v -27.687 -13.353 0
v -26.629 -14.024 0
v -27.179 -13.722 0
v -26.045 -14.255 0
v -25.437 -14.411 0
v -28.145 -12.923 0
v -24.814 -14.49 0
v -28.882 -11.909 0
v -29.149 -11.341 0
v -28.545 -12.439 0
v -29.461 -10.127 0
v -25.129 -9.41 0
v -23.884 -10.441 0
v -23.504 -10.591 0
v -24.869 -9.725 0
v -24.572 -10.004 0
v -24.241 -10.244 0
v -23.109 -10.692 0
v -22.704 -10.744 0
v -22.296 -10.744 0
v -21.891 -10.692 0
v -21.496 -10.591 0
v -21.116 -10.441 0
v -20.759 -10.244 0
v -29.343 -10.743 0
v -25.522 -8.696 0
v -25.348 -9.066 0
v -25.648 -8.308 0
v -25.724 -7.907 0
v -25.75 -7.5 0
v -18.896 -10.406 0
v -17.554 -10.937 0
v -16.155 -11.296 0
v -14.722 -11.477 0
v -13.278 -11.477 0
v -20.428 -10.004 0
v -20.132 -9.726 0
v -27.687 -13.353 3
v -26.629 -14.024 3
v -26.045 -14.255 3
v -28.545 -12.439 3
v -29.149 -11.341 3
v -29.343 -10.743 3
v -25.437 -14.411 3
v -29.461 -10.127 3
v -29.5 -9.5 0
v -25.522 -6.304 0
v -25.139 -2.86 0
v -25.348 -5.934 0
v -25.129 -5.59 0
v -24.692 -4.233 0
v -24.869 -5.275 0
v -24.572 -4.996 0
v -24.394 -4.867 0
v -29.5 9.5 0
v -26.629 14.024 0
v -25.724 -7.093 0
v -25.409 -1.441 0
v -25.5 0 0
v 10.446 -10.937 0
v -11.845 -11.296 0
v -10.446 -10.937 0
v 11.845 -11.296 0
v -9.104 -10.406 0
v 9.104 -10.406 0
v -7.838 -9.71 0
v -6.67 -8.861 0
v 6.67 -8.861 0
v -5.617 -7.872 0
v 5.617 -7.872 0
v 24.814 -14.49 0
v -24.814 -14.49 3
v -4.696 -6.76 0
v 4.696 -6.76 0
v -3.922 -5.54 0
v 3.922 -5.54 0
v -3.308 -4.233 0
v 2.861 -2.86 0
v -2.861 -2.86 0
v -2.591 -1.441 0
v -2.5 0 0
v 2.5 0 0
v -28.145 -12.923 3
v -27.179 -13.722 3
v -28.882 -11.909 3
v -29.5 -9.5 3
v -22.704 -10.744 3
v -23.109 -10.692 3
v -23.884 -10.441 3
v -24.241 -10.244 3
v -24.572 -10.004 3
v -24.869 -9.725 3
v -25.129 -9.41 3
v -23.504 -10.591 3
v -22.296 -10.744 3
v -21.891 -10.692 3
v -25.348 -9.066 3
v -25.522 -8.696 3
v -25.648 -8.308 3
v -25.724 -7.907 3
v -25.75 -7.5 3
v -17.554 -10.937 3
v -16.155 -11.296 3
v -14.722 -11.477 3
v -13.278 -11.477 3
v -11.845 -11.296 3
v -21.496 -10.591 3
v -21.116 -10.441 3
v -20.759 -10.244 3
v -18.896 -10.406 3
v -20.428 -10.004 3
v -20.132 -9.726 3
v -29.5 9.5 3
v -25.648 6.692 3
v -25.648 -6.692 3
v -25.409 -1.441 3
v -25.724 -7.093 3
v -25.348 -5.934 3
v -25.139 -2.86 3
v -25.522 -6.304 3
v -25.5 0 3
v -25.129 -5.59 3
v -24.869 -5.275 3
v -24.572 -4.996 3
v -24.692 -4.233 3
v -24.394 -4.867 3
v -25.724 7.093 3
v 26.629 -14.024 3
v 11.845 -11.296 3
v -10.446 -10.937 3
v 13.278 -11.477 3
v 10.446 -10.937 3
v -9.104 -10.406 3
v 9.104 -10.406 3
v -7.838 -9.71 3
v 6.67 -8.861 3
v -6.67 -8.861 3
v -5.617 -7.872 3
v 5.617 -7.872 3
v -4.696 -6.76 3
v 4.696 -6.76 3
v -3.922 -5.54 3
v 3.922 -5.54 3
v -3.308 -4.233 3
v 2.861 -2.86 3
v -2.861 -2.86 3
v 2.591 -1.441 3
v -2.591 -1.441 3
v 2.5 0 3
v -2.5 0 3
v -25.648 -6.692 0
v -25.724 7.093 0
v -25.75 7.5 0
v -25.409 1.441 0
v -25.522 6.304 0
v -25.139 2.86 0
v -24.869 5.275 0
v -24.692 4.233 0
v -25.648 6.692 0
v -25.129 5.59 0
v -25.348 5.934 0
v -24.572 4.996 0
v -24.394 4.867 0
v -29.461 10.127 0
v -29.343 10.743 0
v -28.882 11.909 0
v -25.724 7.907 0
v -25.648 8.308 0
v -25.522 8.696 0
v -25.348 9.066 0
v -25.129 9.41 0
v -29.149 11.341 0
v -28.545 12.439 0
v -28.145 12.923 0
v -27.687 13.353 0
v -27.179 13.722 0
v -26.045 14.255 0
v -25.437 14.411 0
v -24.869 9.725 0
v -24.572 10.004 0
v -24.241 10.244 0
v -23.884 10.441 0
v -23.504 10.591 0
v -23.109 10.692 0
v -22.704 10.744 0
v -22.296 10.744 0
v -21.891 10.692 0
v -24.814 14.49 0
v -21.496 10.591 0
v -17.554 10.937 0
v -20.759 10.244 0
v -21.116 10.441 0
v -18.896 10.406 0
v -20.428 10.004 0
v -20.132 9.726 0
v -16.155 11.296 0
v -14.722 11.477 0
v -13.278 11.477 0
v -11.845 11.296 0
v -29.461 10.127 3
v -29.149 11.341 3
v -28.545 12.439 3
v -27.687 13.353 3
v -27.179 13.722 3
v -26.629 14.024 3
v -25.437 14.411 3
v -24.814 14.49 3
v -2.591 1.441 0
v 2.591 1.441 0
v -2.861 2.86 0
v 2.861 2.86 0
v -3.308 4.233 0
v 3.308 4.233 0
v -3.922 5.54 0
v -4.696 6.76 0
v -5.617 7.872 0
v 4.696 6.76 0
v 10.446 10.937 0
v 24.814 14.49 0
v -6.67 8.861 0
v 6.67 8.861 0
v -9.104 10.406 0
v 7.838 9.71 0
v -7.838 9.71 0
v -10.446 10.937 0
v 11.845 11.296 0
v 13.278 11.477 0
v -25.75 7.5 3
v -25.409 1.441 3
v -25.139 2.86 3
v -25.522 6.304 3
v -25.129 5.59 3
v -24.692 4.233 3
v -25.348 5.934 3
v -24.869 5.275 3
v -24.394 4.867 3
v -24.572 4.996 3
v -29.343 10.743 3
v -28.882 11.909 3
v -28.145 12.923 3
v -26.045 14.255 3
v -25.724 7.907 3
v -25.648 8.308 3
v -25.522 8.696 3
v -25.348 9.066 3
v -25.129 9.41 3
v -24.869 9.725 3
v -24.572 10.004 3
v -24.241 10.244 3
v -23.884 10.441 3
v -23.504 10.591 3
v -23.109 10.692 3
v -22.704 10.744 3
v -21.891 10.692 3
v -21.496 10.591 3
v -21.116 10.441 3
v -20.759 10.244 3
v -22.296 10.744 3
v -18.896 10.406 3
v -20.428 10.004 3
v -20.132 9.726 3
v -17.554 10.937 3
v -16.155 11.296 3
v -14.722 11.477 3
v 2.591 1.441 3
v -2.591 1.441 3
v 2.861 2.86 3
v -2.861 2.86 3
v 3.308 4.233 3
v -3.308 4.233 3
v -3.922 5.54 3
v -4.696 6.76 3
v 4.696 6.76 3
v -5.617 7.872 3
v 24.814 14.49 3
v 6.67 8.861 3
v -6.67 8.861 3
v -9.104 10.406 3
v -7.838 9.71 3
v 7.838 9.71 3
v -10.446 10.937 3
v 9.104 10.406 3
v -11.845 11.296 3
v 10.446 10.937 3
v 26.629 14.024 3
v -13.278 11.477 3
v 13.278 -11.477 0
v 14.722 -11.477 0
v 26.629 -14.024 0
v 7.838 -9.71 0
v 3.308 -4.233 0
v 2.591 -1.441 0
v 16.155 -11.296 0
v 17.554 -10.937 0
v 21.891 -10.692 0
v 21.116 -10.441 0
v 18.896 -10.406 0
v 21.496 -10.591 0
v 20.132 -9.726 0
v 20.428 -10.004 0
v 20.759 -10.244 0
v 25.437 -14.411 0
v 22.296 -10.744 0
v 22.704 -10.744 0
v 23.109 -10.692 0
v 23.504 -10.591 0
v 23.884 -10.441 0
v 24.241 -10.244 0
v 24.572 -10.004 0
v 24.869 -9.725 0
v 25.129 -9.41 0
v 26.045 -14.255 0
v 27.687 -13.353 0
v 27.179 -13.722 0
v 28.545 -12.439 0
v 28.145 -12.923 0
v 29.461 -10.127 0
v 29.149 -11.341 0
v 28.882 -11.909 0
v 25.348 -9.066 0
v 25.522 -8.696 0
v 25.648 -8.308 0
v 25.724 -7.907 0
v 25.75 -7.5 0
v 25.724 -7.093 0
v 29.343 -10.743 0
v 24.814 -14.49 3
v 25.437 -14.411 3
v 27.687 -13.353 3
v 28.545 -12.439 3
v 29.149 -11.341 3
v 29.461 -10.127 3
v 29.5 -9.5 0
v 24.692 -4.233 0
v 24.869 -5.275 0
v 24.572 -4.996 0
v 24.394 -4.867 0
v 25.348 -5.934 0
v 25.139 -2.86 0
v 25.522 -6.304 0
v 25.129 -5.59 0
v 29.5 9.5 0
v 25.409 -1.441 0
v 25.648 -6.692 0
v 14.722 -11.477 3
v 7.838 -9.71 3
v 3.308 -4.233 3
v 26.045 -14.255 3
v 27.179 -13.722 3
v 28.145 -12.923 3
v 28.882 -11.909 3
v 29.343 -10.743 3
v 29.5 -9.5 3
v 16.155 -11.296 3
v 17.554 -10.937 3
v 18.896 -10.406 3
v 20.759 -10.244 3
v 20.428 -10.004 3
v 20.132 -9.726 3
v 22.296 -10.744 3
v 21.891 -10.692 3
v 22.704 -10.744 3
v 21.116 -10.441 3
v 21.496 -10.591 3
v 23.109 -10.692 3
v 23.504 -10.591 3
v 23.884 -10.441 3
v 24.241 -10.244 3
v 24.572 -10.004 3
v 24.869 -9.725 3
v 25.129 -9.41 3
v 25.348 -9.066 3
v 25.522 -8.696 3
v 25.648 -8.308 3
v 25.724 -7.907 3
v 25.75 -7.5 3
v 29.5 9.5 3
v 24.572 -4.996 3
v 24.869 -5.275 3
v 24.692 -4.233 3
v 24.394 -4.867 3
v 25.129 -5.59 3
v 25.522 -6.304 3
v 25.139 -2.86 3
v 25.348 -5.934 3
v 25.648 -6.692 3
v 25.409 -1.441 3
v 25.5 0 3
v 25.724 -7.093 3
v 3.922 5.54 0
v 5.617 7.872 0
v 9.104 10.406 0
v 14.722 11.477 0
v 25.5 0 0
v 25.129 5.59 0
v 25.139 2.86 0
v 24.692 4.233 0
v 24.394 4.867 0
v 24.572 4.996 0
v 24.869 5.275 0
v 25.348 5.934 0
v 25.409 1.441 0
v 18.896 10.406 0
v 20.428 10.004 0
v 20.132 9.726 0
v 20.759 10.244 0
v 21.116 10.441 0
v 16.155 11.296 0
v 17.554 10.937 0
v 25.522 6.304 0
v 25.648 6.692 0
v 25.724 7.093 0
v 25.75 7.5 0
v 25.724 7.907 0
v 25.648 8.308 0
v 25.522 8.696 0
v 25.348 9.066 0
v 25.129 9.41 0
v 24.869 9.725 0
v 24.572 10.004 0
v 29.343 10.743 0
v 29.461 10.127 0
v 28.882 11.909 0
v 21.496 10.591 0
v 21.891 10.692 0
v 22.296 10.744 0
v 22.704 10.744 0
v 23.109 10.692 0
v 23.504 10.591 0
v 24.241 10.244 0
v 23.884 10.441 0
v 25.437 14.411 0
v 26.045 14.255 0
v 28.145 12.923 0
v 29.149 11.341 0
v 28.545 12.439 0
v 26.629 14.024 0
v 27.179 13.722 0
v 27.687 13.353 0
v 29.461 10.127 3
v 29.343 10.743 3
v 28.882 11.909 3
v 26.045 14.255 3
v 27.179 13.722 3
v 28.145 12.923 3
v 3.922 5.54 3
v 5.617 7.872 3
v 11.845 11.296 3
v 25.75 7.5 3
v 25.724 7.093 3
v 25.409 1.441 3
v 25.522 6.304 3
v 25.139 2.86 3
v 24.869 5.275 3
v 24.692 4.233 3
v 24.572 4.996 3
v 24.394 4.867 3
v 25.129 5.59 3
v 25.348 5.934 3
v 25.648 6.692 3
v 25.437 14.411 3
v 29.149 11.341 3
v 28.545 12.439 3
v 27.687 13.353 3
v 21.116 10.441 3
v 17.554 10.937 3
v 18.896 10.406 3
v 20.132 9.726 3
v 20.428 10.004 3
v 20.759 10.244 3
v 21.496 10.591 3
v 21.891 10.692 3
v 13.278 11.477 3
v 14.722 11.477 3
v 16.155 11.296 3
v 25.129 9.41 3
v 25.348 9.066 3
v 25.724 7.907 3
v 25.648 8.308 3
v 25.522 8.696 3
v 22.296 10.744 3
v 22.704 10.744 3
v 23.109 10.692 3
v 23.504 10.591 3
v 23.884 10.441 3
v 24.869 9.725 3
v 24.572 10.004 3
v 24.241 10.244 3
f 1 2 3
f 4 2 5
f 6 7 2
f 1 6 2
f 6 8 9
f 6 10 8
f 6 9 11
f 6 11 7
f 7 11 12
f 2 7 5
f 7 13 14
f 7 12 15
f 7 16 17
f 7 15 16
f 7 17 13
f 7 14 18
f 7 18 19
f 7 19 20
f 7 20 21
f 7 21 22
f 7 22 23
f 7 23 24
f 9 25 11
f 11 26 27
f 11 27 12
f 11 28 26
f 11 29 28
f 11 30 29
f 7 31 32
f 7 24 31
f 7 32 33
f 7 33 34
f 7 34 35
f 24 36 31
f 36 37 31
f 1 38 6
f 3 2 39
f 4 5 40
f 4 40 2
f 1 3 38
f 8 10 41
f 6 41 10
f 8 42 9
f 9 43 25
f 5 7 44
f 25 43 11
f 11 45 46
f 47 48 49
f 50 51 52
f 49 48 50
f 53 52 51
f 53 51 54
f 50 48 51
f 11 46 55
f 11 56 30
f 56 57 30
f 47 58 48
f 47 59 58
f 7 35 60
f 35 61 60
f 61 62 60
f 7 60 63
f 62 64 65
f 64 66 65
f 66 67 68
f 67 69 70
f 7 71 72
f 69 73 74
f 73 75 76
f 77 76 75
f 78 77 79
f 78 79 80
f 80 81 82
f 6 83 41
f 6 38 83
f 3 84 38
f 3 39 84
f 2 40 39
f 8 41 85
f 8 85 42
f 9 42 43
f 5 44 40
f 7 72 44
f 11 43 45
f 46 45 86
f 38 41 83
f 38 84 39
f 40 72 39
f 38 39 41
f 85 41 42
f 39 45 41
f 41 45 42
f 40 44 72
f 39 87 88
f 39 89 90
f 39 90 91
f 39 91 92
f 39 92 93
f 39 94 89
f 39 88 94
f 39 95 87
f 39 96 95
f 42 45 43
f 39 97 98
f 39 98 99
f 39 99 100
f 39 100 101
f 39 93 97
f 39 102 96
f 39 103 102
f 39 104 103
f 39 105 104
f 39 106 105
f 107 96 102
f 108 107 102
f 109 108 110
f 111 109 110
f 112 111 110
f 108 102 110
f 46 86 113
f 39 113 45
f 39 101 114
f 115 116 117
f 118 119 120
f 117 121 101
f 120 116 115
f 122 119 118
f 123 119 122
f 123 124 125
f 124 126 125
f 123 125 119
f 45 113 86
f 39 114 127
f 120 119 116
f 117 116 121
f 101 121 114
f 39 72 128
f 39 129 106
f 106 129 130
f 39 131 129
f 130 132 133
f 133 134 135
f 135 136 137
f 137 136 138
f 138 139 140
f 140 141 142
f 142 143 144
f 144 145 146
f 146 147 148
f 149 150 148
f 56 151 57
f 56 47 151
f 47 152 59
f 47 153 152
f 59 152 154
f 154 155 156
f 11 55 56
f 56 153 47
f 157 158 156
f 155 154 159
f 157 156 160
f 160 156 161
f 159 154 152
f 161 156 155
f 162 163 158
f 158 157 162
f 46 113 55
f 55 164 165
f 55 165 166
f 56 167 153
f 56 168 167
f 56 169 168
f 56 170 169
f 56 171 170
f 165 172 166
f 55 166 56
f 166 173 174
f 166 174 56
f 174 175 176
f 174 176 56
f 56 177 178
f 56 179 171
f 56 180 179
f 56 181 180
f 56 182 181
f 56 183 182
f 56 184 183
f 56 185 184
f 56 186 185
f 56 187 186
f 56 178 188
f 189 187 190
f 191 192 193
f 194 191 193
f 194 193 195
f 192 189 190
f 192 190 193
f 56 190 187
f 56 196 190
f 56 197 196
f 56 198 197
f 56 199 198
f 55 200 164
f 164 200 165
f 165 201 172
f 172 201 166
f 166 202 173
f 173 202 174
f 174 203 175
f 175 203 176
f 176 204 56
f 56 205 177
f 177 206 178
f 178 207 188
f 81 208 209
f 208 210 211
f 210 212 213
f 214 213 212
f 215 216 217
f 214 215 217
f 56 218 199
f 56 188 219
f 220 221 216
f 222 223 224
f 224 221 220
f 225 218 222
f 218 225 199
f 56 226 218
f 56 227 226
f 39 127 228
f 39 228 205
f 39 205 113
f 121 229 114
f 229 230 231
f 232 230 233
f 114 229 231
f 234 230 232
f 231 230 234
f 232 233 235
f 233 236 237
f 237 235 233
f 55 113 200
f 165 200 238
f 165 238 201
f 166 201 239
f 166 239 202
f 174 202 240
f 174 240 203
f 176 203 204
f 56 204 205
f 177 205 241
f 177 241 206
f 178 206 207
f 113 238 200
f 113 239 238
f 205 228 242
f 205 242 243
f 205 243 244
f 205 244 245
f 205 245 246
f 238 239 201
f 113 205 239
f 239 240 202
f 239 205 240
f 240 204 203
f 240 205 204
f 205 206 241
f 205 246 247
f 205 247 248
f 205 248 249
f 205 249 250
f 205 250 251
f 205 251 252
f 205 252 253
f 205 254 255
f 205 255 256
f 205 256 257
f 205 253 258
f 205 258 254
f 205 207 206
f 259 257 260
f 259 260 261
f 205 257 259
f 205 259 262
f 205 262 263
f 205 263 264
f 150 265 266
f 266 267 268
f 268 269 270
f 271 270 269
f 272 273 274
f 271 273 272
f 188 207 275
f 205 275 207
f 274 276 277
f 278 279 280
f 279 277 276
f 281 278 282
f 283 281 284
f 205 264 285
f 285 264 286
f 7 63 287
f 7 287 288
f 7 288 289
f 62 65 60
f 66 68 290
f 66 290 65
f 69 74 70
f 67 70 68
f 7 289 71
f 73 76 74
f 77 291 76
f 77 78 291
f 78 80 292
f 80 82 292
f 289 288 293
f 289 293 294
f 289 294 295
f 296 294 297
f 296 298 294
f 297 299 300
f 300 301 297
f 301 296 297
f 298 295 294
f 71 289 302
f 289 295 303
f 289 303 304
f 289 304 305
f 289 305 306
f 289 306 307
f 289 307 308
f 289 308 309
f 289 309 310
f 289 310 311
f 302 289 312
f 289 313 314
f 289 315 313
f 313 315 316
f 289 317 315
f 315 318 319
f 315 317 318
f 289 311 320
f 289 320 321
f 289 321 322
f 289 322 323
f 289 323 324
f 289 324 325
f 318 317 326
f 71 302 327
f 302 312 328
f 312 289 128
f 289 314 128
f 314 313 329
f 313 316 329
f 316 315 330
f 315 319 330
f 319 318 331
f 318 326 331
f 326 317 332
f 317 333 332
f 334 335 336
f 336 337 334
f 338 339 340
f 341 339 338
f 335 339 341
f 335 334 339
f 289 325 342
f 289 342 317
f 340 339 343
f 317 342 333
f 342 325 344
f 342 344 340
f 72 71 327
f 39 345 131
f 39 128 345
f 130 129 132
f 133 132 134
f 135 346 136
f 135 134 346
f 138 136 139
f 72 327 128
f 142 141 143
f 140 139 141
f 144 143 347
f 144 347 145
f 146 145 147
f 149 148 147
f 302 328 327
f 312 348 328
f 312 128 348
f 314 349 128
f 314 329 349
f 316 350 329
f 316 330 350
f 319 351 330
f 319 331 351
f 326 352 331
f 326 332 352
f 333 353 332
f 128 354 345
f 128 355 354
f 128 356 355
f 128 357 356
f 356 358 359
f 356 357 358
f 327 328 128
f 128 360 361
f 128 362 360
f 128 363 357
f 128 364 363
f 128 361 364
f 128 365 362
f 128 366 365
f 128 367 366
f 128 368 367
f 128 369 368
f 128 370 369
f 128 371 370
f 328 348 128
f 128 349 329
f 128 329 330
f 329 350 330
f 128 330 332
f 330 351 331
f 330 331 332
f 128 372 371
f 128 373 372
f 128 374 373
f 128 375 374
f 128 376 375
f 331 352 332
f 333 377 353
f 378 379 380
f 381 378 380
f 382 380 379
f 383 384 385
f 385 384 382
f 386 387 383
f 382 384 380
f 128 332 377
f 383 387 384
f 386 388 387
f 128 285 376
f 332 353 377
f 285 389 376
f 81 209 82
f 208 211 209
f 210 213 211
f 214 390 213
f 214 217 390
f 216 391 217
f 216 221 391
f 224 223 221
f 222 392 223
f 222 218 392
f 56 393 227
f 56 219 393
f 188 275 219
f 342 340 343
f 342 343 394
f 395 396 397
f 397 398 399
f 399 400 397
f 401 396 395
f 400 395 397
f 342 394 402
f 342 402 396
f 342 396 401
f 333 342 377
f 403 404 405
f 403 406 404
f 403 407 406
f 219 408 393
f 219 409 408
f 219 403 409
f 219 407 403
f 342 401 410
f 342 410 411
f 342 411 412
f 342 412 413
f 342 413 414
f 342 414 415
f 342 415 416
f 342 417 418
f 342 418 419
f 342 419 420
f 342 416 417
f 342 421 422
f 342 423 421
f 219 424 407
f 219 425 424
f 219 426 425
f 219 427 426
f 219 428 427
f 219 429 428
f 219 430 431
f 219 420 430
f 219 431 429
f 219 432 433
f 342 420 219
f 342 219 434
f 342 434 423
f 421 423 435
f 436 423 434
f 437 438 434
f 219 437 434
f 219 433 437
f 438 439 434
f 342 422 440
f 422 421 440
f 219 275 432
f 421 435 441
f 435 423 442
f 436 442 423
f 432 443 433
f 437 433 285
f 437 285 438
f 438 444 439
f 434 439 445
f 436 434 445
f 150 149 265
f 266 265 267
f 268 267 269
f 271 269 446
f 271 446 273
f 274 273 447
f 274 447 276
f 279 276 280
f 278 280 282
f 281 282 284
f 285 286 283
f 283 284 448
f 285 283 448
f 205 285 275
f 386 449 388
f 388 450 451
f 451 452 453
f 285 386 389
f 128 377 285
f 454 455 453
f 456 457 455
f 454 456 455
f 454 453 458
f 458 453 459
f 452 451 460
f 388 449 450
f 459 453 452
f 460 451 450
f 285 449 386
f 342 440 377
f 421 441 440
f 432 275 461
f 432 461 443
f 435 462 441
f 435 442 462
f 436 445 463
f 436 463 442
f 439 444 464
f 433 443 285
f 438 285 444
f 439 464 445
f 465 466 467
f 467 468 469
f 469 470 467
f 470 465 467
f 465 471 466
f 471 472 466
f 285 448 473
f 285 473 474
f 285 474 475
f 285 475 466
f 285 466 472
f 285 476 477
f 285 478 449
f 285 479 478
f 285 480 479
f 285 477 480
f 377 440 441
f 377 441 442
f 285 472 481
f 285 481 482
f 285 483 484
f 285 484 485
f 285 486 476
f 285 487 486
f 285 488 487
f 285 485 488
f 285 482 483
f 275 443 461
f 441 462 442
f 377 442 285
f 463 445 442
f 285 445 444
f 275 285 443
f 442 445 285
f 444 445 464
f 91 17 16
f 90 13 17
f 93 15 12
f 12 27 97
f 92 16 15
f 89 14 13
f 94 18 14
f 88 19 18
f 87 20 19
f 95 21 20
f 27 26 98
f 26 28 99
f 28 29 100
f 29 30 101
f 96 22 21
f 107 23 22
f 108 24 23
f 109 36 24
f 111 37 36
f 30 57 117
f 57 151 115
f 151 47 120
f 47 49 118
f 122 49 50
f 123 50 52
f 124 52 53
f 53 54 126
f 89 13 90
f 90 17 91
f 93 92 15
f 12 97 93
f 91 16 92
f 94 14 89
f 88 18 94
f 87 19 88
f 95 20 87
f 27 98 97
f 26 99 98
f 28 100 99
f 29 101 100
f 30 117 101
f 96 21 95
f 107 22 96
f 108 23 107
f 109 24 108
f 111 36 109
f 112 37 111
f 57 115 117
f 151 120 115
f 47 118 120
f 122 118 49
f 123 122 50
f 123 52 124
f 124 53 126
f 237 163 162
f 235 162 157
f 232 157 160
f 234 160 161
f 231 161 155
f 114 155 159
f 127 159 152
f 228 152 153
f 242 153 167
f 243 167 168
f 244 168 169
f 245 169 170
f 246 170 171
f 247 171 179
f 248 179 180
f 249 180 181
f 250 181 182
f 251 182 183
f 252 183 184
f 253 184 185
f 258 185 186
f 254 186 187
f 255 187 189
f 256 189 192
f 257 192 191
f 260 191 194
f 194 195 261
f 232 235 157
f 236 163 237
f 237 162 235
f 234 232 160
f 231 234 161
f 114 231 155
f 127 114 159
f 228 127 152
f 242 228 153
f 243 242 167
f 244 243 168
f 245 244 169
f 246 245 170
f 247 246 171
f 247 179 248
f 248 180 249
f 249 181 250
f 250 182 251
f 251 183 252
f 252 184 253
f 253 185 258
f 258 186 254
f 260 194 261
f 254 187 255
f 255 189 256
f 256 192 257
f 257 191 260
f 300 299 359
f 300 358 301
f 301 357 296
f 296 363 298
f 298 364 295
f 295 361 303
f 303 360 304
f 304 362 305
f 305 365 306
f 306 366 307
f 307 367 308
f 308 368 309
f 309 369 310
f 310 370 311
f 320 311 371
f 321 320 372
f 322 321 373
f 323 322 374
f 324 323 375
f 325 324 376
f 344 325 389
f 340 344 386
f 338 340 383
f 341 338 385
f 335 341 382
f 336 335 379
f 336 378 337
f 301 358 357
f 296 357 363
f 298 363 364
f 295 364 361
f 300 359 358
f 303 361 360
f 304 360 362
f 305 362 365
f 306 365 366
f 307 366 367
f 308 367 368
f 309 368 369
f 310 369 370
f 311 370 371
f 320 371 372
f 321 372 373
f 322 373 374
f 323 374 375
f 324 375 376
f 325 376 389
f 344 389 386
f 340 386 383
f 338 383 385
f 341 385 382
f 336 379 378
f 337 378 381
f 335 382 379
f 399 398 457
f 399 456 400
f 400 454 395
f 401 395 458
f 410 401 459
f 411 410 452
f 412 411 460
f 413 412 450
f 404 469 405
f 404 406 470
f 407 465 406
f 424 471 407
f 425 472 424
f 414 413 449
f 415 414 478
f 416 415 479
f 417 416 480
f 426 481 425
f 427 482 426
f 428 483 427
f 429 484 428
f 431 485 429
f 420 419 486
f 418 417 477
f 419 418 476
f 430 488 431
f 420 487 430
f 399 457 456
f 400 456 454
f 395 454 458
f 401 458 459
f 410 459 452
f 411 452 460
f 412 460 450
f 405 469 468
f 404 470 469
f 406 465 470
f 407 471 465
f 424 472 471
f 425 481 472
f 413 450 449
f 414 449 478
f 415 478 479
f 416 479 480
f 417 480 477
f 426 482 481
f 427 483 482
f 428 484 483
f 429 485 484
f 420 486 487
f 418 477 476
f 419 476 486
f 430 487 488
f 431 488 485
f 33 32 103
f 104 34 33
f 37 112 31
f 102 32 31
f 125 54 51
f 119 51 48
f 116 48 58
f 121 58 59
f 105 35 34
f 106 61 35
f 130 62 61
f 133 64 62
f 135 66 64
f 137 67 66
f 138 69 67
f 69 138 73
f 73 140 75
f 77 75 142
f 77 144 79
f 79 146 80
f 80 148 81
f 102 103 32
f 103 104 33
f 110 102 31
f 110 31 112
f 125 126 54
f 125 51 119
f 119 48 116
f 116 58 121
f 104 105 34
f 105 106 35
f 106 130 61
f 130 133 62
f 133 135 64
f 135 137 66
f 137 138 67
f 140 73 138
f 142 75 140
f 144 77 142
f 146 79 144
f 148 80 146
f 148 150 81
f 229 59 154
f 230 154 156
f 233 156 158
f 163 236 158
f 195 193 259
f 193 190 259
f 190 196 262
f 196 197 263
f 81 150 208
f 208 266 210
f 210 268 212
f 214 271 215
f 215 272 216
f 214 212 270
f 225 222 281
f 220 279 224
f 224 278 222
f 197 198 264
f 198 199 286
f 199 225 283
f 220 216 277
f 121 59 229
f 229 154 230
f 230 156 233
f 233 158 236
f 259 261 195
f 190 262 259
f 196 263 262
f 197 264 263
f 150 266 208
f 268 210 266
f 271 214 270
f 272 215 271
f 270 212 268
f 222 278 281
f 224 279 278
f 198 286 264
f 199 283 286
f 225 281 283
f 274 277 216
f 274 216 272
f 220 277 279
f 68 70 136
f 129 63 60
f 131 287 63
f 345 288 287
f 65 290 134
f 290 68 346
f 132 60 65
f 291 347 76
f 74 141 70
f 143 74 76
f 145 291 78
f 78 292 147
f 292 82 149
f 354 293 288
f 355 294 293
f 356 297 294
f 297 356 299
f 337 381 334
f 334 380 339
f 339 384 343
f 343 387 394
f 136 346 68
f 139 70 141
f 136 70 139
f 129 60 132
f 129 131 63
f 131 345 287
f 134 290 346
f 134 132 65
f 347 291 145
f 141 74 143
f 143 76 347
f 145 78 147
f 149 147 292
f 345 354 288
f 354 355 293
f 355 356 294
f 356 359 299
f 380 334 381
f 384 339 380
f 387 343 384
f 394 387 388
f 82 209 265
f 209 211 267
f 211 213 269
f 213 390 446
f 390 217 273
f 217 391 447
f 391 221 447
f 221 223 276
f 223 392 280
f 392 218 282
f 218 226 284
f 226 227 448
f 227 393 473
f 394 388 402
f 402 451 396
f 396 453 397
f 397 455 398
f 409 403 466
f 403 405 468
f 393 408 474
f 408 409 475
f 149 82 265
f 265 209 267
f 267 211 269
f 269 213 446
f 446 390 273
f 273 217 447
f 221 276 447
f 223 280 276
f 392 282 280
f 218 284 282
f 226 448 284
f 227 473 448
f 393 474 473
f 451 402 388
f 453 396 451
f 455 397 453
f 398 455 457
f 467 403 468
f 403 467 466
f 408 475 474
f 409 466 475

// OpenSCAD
$fn = 50;

difference() {
	union() {
		hull() {
			translate(v = [-24.5, 9.5, 0]) {
				cylinder(h = 3, r = 5);
			}
			translate(v = [24.5, 9.5, 0]) {
				cylinder(h = 3, r = 5);
			}
			translate(v = [-24.5, -9.5, 0]) {
				cylinder(h = 3, r = 5);
			}
			translate(v = [24.5, -9.5, 0]) {
				cylinder(h = 3, r = 5);
			}
		}
	}
	union() {
		translate(v = [-22.5, -7.5, -100.0]) {
			cylinder(h = 200, r = 3.25);
		}
		translate(v = [-22.5, 7.5, -100.0]) {
			cylinder(h = 200, r = 3.25);
		}
		translate(v = [22.5, -7.5, -100.0]) {
			cylinder(h = 200, r = 3.25);
		}
		translate(v = [22.5, 7.5, -100.0]) {
			cylinder(h = 200, r = 3.25);
		}
		translate(v = [-22.5, -7.5, -100.0]) {
			cylinder(h = 200, r = 1.8);
		}
		translate(v = [-22.5, 7.5, -100.0]) {
			cylinder(h = 200, r = 1.8);
		}
		translate(v = [22.5, -7.5, -100.0]) {
			cylinder(h = 200, r = 1.8);
		}
		translate(v = [22.5, 7.5, -100.0]) {
			cylinder(h = 200, r = 1.8);
		}
		translate(v = [-14.0, 0, 0.0]) {
			cylinder(h = 3, r = 11.5);
		}
		translate(v = [14.0, 0, 0.0]) {
			cylinder(h = 3, r = 11.5);
		}
	}
}
